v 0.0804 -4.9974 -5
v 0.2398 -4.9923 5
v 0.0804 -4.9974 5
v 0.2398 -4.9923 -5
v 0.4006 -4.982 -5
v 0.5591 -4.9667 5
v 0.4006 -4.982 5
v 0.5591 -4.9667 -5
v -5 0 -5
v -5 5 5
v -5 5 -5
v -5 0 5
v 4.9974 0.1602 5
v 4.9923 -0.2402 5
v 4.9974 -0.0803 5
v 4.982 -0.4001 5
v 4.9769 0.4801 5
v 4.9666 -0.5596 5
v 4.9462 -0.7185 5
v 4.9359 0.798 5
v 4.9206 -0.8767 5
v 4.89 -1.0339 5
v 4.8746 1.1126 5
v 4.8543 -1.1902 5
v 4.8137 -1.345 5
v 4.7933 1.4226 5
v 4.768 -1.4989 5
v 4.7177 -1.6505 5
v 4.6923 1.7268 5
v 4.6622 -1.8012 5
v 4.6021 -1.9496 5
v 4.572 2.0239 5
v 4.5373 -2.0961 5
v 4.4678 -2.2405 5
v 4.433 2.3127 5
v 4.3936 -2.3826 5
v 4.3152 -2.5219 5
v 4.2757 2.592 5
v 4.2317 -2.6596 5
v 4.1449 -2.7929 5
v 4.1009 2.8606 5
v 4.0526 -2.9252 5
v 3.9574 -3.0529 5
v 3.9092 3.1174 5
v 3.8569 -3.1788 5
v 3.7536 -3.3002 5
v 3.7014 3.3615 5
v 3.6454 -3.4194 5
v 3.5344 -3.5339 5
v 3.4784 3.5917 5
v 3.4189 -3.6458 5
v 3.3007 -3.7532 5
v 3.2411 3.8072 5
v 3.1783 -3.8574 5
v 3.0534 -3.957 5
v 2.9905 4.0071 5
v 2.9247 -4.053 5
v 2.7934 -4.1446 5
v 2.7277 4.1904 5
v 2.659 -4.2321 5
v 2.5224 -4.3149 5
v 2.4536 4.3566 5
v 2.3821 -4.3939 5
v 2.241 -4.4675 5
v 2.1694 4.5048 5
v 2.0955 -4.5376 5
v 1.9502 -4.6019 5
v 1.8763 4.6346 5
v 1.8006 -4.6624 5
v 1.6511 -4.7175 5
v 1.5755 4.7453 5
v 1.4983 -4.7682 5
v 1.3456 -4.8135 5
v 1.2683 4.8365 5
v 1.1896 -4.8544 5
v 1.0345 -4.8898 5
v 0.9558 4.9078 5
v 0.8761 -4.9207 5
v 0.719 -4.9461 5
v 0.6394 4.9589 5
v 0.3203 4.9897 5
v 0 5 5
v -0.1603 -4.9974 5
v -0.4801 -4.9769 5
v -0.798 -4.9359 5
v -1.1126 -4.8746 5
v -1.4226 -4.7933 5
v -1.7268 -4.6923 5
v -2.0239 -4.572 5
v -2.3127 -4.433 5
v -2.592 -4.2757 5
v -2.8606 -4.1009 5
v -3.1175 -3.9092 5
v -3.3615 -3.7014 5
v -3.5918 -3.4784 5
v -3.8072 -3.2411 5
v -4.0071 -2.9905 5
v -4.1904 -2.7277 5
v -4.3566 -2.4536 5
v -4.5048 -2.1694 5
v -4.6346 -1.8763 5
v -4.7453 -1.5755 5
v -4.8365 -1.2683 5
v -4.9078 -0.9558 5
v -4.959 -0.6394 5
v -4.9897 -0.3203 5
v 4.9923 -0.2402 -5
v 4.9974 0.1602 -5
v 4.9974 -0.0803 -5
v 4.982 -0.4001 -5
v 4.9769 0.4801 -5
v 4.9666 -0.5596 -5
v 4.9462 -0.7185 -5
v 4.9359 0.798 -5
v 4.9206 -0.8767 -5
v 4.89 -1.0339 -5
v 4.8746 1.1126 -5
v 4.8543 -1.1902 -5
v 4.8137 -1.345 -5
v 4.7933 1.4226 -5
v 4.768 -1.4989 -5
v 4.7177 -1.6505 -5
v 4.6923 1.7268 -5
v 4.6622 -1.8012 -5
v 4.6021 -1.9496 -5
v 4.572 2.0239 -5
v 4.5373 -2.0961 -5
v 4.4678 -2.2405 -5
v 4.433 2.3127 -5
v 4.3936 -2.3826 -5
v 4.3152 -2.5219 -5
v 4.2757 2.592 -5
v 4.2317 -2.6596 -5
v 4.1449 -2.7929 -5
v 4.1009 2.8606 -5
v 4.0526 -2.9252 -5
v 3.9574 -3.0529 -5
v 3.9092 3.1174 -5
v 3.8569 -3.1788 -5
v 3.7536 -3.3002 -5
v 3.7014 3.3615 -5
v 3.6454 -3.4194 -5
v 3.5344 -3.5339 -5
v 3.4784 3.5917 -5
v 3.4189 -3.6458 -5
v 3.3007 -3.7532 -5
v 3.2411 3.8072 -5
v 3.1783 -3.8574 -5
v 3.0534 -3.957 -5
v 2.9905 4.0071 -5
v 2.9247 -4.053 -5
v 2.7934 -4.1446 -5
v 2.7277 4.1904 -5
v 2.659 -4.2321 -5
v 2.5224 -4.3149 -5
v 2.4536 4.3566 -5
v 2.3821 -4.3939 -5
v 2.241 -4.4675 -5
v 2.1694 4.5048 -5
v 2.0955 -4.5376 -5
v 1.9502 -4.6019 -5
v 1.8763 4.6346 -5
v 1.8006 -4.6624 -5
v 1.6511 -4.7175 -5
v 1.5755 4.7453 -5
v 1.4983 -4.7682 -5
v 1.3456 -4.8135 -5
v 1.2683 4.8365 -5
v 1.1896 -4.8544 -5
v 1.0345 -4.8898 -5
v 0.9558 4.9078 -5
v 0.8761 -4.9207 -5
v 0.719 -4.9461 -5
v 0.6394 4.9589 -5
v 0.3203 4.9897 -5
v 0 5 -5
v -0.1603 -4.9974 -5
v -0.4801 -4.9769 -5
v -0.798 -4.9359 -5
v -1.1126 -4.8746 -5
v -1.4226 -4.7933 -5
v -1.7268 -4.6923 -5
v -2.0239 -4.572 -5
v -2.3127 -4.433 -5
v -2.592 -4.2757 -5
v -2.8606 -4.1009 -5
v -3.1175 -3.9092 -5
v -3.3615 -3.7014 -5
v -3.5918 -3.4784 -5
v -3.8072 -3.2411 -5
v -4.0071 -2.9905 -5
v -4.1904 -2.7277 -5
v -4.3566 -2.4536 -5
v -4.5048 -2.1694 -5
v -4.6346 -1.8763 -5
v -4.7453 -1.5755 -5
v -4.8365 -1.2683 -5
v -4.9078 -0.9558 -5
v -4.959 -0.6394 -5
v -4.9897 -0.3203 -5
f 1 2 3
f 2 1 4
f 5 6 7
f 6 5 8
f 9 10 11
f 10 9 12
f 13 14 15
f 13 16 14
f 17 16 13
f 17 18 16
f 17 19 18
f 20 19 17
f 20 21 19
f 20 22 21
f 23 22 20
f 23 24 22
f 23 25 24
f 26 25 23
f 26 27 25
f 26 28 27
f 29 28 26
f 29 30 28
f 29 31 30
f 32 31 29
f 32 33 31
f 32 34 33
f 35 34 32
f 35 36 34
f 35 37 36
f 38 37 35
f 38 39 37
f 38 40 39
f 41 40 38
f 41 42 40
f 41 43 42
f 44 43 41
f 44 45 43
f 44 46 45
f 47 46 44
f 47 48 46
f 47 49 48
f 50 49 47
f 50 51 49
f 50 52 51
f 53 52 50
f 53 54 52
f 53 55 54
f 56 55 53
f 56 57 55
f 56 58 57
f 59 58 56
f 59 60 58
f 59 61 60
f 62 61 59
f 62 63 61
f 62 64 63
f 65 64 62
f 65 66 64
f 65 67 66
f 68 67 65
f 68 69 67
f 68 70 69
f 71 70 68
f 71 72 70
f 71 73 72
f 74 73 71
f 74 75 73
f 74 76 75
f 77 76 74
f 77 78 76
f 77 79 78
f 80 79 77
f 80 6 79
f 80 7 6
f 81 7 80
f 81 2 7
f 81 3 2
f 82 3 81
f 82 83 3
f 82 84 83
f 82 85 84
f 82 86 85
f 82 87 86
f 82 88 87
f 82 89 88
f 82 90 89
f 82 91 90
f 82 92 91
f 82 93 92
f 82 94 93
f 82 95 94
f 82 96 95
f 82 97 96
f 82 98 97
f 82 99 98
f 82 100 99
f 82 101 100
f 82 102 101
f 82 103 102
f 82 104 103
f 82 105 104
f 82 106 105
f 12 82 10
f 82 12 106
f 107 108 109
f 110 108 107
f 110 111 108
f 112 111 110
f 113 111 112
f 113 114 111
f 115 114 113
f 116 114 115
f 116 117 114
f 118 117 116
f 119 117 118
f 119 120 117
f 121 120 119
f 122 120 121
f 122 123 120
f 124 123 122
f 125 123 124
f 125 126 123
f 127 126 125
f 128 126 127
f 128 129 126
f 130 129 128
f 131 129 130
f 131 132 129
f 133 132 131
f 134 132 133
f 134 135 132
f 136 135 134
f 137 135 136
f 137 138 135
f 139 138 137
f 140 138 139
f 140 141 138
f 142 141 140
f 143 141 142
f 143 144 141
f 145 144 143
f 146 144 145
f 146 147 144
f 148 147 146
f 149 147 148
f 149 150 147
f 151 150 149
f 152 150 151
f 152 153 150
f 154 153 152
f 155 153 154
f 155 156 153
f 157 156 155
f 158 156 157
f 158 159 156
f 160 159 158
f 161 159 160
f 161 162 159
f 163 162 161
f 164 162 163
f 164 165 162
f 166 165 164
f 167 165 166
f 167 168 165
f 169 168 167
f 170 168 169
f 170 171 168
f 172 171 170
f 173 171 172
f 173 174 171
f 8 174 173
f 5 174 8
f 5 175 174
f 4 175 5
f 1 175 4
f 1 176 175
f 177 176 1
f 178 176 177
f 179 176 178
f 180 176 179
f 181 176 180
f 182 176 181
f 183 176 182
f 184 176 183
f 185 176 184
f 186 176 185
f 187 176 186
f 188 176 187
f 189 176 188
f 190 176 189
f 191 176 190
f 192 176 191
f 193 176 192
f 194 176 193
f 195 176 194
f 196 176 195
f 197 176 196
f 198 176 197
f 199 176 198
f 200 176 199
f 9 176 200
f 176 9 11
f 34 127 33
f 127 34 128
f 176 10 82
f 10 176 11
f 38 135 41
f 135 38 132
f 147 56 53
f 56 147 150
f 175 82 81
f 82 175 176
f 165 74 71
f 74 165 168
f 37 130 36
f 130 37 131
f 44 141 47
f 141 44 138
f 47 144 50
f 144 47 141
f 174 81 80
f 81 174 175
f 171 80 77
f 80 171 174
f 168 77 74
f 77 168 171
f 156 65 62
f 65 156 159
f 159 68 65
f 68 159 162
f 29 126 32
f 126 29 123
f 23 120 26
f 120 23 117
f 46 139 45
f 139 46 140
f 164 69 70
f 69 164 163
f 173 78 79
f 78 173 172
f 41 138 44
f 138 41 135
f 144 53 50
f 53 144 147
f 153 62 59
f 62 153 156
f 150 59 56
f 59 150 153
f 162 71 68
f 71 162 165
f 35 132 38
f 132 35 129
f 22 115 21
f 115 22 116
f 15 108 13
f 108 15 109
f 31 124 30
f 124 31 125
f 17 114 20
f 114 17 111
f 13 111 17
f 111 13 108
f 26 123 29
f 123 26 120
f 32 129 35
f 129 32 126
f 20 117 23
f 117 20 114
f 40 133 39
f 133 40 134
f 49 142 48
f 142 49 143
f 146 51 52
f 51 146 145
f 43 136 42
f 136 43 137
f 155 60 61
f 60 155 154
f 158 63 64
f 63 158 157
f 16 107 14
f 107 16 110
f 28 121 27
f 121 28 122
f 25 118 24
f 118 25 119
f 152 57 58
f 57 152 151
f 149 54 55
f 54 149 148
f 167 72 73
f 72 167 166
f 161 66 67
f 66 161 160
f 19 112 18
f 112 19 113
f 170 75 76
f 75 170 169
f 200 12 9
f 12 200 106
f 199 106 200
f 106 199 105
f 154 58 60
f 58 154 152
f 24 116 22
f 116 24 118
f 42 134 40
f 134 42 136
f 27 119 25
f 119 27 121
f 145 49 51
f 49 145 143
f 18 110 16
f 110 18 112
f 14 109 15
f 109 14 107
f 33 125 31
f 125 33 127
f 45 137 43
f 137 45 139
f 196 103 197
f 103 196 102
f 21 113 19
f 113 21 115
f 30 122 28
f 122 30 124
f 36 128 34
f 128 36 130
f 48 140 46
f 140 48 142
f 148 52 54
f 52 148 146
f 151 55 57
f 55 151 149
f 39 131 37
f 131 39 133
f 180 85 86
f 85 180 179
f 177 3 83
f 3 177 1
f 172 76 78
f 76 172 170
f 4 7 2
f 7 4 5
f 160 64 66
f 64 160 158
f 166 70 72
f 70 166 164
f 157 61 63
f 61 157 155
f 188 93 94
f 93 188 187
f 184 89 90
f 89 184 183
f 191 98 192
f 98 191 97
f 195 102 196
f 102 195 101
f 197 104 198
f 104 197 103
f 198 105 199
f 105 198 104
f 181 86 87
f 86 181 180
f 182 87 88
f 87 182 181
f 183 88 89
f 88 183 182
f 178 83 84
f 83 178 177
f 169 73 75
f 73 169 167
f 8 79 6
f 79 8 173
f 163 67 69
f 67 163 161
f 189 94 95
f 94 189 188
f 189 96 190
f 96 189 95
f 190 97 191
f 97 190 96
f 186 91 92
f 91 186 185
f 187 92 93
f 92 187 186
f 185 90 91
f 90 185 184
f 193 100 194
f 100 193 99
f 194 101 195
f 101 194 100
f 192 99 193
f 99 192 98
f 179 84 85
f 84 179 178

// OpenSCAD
// Generated by SolidPython 1.1.3 on 2025-02-20 04:04:05
$fn=50;


intersection() {
	translate(v = [-5.0000000000, -5.0000000000, -5.0000000000]) {
		linear_extrude(height = 10) {
			polygon(points = [[5.0000000000, 10.0000000000], [5.3203510999, 9.9897269638], [5.6393858084, 9.9589500691], [5.9557931435, 9.9077957850], [6.2682729195, 9.8364743152], [6.5755410901, 9.7452787351], [6.8763350244, 9.6345837867], [7.1694186956, 9.5048443395], [7.4535877600, 9.3565935206], [7.7276745061, 9.1904405245], [7.9905526525, 9.0070681093], [8.2411419765, 8.8072297918], [8.4784127530, 8.5917467505], [8.7013899854, 8.3615044513], [8.9091574123, 8.1174490093], [9.1008612730, 7.8605833006], [9.2757138150, 7.5919628416], [9.4329965319, 7.3126914512], [9.5720631151, 7.0239167156], [9.6923421102, 6.7268252721], [9.7933392652, 6.4226379332], [9.8746395609, 6.1126046698], [9.9359089171, 5.7979994752], [9.9768955647, 5.4801151295], [9.9974310810, 5.1602578879], [9.9974310810, 4.8397421121], [9.9768955647, 4.5198848705], [9.9359089171, 4.2020005248], [9.8746395609, 3.8873953302], [9.7933392652, 3.5773620668], [9.6923421102, 3.2731747279], [9.5720631151, 2.9760832844], [9.4329965319, 2.6873085488], [9.2757138150, 2.4080371584], [9.1008612730, 2.1394166994], [8.9091574123, 1.8825509907], [8.7013899854, 1.6384955487], [8.4784127530, 1.4082532495], [8.2411419765, 1.1927702082], [7.9905526525, 0.9929318907], [7.7276745061, 0.8095594755], [7.4535877600, 0.6434064794], [7.1694186956, 0.4951556605], [6.8763350244, 0.3654162133], [6.5755410901, 0.2547212649], [6.2682729195, 0.1635256848], [5.9557931435, 0.0922042150], [5.6393858084, 0.0410499309], [5.3203510999, 0.0102730362], [5.0000000000, 0.0000000000], [0, 0], [0, 10]]);
		}
	}
	rotate(a = -90, v = [0, 0, 1]) {
		translate(v = [-5.0000000000, -5.0000000000, -5.0000000000]) {
			linear_extrude(height = 10) {
				polygon(points = [[5.0000000000, 10.0000000000], [5.3203510999, 9.9897269638], [5.6393858084, 9.9589500691], [5.9557931435, 9.9077957850], [6.2682729195, 9.8364743152], [6.5755410901, 9.7452787351], [6.8763350244, 9.6345837867], [7.1694186956, 9.5048443395], [7.4535877600, 9.3565935206], [7.7276745061, 9.1904405245], [7.9905526525, 9.0070681093], [8.2411419765, 8.8072297918], [8.4784127530, 8.5917467505], [8.7013899854, 8.3615044513], [8.9091574123, 8.1174490093], [9.1008612730, 7.8605833006], [9.2757138150, 7.5919628416], [9.4329965319, 7.3126914512], [9.5720631151, 7.0239167156], [9.6923421102, 6.7268252721], [9.7933392652, 6.4226379332], [9.8746395609, 6.1126046698], [9.9359089171, 5.7979994752], [9.9768955647, 5.4801151295], [9.9974310810, 5.1602578879], [9.9974310810, 4.8397421121], [9.9768955647, 4.5198848705], [9.9359089171, 4.2020005248], [9.8746395609, 3.8873953302], [9.7933392652, 3.5773620668], [9.6923421102, 3.2731747279], [9.5720631151, 2.9760832844], [9.4329965319, 2.6873085488], [9.2757138150, 2.4080371584], [9.1008612730, 2.1394166994], [8.9091574123, 1.8825509907], [8.7013899854, 1.6384955487], [8.4784127530, 1.4082532495], [8.2411419765, 1.1927702082], [7.9905526525, 0.9929318907], [7.7276745061, 0.8095594755], [7.4535877600, 0.6434064794], [7.1694186956, 0.4951556605], [6.8763350244, 0.3654162133], [6.5755410901, 0.2547212649], [6.2682729195, 0.1635256848], [5.9557931435, 0.0922042150], [5.6393858084, 0.0410499309], [5.3203510999, 0.0102730362], [5.0000000000, 0.0000000000], [0, 0], [0, 10]]);
			}
		}
	}
}
/***********************************************
*********      SolidPython code:      **********
************************************************
 
from solid import *
from solid.utils import *

import math
import matplotlib.pyplot as plt
import subprocess
import os

class Hole:
    def __init__(self, x, y, radius):
        """
        Hole defined by:
        :param x: x dimension for center point of the circle as a ratio of letter height
        :param y: y dimension for center point of the circle as a ratio of letter height
        :param radius: radius of circle as a ratio of letter height
        """
        self.x = x
        self.y = y
        self.radius = radius

class Letter3D:
    def __init__(self, name, outer_shape_points, height, holes=None):
        """
        3D Letter defined by:
        :param name: name of letter
        :param outer_shape_points: points defining the outer shape of the letter
        :param heigh: size of cube that letter fits inside
        :param holes: list of Holes
        """
        self.name = name
        self.outer_shape_points = outer_shape_points
        self.holes = holes if holes is None else []
        self.height = height


    def generate(self):
        shape = polygon(points=self.outer_shape_points)

        if self.holes:
            for hole in self.holes:
                circle_hole = circle(r=hole.radius*self.height)
                positioned_hole = translate([hole.x*self.height, hole.y*self.height])(circle_hole)
                shape = difference()(shape, positioned_hole)
        
        shape_3d = linear_extrude(height=self.height)(shape)
        shape_3d = translate([-self.height/2, -self.height/2, -self.height/2])(shape_3d)
        return shape_3d
    
    def render(self):
        scad_render_to_file(self.shape, f"output/{self.name}.scad", file_header='$fn=50;')
        subprocess.run(["C:\\Program Files\\OpenSCAD\\openscad.exe", "-o", f"output\\{self.name}.stl", f"output\\{self.name}.scad"])


class TwoLetter3D:
    def __init__(self, height, letterA, letterA_face, letterB=None, letterB_face=None):
        self.height = height
        self.letterA = letterA
        self.letterB = letterB
        self.letterA_face = letterA_face
        self.letterB_face = letterB_face

    def call_letter_generation(self, letter):
        letter = letter.upper()
        function_name = f"letter_{letter}"
        func = globals().get(function_name)
        if func is None:
            raise ValueError(f"No letter generation function defined for letter '{letter}'.")
        else:
            print(func)
        return func(self.height)
    
    def rotate_object(self, face, shape):
        face = face.lower()
        if face == "z":
            return shape
        if face == "x":
            return rotate(a=90, v=[0,1,0])(shape)
        if face == "y":
            return rotate(a=-90, v=[0,0,1])(shape)
        else:
            raise ValueError("Face must be one of 'x', 'y', or 'z'.")

    def render(self):
        if self.letterA:
            letterA3D = self.call_letter_generation(self.letterA)
            letterA3D = self.rotate_object(self.letterA_face, letterA3D)

        if self.letterB:
            letterB3D = self.call_letter_generation(self.letterB)
            letterB3D = self.rotate_object(self.letterB_face, letterB3D)
            combined = intersection()(letterA3D, letterB3D)
            file_name = self.letterA + self.letterB
            scad_render_to_file(combined, f"output/{file_name}.scad", file_header='$fn=50;')
            subprocess.run(["C:\\Program Files\\OpenSCAD\\openscad.exe", "-o", f"output\\{file_name}.stl", f"output\\{file_name}.scad"])
            return
        else:
            file_name = self.letterA
            scad_render_to_file(letterA3D, f"output/{file_name}.scad", file_header='$fn=50;')
            subprocess.run(["C:\\Program Files\\OpenSCAD\\openscad.exe", "-o", f"output\\{file_name}.stl", f"output\\{file_name}.scad"])
    
                

def arc_points(radius, start_angle, end_angle, center=[0,0], num_points=50):
    angles = [start_angle + i * (end_angle - start_angle) / (num_points - 1)
              for i in range(num_points)]
    points = [
        (center[0] + radius * math.cos(math.radians(angle)),
         center[1] + radius * math.sin(math.radians(angle)))
        for angle in angles
    ]
    return points

def letter_A(h):
    shape_points = [(0,0), (h/2, h), (h, 0), (5/6*h, 0), (2/3*h, 1/3*h), (1/3*h, 1/3*h), (h/6, 0)]
    holes = [Hole(1/2, 7/12, 1/6)]
    A = Letter3D("A", shape_points, h, holes)
    return A.generate()

def letter_B(h):
    top_arc_points = arc_points(h/4, 90, -90, center=[3/4*h, 3/4*h])
    bottom_arc_points = arc_points(h/4, 90, -90, center=[3/4*h, h/4])
    other_points = [(0,0),(0,h)]

    shape_points = top_arc_points + bottom_arc_points + other_points
    holes = [Hole(1/2, 3/4, 1/6), Hole(1/2, 1/4, 1/6)]
    B = Letter3D("B", shape_points, h, holes)
    return B.generate()

def letter_C(h):
    outer_arc_points = arc_points(h/2, 30, 330, center=[h/2,h/2])
    inner_arc_points = arc_points(h/4, 30, 330, center=[h/2,h/2])[::-1]
    shape_points = outer_arc_points + inner_arc_points
    # print(shape_points)
    C = Letter3D("C", shape_points, h)
    return C.generate()


def letter_D(h):
    outer_arc_points = arc_points(h/2, 90, -90, center= [h/2, h/2])
    shape_points = outer_arc_points + [(0,0), (0, h)]
    holes = [Hole(1/2, 1/2, 1/6)]
    D = Letter3D("D", shape_points, h, holes)
    return D.generate()

def letter_E(h):
    points = [(0,0), (h,0), (h,h/5), (h/5,h/5), (h/5,2/5*h), (3/4*h,2/5*h), (3/4*h,3/5*h), (h/5,3/5*h), (h/5,4/5*h), (h,4/5*h), (h,h), (0,h)]
    E = Letter3D("E", points, h)
    return E.generate()

def letter_F(h):
    points = [(0,0), (h/5,0), (h/5,2/5*h), (3/4*h,2/5*h), (3/4*h,3/5*h), (h/5,3/5*h), (h/5,4/5*h), (h,4/5*h), (h,h), (0,h)]
    F = Letter3D("F", points, h)
    return F.generate()

if __name__ == "__main__":
    os.makedirs("output", exist_ok=True)

    letters = [chr(x) for x in range(ord('A'), ord('F') + 1)]
    for letter in letters:
        for other_letter in letters:
            shape = TwoLetter3D(10, letter, "z", other_letter, "y")
            shape.render()
 
 
************************************************/
